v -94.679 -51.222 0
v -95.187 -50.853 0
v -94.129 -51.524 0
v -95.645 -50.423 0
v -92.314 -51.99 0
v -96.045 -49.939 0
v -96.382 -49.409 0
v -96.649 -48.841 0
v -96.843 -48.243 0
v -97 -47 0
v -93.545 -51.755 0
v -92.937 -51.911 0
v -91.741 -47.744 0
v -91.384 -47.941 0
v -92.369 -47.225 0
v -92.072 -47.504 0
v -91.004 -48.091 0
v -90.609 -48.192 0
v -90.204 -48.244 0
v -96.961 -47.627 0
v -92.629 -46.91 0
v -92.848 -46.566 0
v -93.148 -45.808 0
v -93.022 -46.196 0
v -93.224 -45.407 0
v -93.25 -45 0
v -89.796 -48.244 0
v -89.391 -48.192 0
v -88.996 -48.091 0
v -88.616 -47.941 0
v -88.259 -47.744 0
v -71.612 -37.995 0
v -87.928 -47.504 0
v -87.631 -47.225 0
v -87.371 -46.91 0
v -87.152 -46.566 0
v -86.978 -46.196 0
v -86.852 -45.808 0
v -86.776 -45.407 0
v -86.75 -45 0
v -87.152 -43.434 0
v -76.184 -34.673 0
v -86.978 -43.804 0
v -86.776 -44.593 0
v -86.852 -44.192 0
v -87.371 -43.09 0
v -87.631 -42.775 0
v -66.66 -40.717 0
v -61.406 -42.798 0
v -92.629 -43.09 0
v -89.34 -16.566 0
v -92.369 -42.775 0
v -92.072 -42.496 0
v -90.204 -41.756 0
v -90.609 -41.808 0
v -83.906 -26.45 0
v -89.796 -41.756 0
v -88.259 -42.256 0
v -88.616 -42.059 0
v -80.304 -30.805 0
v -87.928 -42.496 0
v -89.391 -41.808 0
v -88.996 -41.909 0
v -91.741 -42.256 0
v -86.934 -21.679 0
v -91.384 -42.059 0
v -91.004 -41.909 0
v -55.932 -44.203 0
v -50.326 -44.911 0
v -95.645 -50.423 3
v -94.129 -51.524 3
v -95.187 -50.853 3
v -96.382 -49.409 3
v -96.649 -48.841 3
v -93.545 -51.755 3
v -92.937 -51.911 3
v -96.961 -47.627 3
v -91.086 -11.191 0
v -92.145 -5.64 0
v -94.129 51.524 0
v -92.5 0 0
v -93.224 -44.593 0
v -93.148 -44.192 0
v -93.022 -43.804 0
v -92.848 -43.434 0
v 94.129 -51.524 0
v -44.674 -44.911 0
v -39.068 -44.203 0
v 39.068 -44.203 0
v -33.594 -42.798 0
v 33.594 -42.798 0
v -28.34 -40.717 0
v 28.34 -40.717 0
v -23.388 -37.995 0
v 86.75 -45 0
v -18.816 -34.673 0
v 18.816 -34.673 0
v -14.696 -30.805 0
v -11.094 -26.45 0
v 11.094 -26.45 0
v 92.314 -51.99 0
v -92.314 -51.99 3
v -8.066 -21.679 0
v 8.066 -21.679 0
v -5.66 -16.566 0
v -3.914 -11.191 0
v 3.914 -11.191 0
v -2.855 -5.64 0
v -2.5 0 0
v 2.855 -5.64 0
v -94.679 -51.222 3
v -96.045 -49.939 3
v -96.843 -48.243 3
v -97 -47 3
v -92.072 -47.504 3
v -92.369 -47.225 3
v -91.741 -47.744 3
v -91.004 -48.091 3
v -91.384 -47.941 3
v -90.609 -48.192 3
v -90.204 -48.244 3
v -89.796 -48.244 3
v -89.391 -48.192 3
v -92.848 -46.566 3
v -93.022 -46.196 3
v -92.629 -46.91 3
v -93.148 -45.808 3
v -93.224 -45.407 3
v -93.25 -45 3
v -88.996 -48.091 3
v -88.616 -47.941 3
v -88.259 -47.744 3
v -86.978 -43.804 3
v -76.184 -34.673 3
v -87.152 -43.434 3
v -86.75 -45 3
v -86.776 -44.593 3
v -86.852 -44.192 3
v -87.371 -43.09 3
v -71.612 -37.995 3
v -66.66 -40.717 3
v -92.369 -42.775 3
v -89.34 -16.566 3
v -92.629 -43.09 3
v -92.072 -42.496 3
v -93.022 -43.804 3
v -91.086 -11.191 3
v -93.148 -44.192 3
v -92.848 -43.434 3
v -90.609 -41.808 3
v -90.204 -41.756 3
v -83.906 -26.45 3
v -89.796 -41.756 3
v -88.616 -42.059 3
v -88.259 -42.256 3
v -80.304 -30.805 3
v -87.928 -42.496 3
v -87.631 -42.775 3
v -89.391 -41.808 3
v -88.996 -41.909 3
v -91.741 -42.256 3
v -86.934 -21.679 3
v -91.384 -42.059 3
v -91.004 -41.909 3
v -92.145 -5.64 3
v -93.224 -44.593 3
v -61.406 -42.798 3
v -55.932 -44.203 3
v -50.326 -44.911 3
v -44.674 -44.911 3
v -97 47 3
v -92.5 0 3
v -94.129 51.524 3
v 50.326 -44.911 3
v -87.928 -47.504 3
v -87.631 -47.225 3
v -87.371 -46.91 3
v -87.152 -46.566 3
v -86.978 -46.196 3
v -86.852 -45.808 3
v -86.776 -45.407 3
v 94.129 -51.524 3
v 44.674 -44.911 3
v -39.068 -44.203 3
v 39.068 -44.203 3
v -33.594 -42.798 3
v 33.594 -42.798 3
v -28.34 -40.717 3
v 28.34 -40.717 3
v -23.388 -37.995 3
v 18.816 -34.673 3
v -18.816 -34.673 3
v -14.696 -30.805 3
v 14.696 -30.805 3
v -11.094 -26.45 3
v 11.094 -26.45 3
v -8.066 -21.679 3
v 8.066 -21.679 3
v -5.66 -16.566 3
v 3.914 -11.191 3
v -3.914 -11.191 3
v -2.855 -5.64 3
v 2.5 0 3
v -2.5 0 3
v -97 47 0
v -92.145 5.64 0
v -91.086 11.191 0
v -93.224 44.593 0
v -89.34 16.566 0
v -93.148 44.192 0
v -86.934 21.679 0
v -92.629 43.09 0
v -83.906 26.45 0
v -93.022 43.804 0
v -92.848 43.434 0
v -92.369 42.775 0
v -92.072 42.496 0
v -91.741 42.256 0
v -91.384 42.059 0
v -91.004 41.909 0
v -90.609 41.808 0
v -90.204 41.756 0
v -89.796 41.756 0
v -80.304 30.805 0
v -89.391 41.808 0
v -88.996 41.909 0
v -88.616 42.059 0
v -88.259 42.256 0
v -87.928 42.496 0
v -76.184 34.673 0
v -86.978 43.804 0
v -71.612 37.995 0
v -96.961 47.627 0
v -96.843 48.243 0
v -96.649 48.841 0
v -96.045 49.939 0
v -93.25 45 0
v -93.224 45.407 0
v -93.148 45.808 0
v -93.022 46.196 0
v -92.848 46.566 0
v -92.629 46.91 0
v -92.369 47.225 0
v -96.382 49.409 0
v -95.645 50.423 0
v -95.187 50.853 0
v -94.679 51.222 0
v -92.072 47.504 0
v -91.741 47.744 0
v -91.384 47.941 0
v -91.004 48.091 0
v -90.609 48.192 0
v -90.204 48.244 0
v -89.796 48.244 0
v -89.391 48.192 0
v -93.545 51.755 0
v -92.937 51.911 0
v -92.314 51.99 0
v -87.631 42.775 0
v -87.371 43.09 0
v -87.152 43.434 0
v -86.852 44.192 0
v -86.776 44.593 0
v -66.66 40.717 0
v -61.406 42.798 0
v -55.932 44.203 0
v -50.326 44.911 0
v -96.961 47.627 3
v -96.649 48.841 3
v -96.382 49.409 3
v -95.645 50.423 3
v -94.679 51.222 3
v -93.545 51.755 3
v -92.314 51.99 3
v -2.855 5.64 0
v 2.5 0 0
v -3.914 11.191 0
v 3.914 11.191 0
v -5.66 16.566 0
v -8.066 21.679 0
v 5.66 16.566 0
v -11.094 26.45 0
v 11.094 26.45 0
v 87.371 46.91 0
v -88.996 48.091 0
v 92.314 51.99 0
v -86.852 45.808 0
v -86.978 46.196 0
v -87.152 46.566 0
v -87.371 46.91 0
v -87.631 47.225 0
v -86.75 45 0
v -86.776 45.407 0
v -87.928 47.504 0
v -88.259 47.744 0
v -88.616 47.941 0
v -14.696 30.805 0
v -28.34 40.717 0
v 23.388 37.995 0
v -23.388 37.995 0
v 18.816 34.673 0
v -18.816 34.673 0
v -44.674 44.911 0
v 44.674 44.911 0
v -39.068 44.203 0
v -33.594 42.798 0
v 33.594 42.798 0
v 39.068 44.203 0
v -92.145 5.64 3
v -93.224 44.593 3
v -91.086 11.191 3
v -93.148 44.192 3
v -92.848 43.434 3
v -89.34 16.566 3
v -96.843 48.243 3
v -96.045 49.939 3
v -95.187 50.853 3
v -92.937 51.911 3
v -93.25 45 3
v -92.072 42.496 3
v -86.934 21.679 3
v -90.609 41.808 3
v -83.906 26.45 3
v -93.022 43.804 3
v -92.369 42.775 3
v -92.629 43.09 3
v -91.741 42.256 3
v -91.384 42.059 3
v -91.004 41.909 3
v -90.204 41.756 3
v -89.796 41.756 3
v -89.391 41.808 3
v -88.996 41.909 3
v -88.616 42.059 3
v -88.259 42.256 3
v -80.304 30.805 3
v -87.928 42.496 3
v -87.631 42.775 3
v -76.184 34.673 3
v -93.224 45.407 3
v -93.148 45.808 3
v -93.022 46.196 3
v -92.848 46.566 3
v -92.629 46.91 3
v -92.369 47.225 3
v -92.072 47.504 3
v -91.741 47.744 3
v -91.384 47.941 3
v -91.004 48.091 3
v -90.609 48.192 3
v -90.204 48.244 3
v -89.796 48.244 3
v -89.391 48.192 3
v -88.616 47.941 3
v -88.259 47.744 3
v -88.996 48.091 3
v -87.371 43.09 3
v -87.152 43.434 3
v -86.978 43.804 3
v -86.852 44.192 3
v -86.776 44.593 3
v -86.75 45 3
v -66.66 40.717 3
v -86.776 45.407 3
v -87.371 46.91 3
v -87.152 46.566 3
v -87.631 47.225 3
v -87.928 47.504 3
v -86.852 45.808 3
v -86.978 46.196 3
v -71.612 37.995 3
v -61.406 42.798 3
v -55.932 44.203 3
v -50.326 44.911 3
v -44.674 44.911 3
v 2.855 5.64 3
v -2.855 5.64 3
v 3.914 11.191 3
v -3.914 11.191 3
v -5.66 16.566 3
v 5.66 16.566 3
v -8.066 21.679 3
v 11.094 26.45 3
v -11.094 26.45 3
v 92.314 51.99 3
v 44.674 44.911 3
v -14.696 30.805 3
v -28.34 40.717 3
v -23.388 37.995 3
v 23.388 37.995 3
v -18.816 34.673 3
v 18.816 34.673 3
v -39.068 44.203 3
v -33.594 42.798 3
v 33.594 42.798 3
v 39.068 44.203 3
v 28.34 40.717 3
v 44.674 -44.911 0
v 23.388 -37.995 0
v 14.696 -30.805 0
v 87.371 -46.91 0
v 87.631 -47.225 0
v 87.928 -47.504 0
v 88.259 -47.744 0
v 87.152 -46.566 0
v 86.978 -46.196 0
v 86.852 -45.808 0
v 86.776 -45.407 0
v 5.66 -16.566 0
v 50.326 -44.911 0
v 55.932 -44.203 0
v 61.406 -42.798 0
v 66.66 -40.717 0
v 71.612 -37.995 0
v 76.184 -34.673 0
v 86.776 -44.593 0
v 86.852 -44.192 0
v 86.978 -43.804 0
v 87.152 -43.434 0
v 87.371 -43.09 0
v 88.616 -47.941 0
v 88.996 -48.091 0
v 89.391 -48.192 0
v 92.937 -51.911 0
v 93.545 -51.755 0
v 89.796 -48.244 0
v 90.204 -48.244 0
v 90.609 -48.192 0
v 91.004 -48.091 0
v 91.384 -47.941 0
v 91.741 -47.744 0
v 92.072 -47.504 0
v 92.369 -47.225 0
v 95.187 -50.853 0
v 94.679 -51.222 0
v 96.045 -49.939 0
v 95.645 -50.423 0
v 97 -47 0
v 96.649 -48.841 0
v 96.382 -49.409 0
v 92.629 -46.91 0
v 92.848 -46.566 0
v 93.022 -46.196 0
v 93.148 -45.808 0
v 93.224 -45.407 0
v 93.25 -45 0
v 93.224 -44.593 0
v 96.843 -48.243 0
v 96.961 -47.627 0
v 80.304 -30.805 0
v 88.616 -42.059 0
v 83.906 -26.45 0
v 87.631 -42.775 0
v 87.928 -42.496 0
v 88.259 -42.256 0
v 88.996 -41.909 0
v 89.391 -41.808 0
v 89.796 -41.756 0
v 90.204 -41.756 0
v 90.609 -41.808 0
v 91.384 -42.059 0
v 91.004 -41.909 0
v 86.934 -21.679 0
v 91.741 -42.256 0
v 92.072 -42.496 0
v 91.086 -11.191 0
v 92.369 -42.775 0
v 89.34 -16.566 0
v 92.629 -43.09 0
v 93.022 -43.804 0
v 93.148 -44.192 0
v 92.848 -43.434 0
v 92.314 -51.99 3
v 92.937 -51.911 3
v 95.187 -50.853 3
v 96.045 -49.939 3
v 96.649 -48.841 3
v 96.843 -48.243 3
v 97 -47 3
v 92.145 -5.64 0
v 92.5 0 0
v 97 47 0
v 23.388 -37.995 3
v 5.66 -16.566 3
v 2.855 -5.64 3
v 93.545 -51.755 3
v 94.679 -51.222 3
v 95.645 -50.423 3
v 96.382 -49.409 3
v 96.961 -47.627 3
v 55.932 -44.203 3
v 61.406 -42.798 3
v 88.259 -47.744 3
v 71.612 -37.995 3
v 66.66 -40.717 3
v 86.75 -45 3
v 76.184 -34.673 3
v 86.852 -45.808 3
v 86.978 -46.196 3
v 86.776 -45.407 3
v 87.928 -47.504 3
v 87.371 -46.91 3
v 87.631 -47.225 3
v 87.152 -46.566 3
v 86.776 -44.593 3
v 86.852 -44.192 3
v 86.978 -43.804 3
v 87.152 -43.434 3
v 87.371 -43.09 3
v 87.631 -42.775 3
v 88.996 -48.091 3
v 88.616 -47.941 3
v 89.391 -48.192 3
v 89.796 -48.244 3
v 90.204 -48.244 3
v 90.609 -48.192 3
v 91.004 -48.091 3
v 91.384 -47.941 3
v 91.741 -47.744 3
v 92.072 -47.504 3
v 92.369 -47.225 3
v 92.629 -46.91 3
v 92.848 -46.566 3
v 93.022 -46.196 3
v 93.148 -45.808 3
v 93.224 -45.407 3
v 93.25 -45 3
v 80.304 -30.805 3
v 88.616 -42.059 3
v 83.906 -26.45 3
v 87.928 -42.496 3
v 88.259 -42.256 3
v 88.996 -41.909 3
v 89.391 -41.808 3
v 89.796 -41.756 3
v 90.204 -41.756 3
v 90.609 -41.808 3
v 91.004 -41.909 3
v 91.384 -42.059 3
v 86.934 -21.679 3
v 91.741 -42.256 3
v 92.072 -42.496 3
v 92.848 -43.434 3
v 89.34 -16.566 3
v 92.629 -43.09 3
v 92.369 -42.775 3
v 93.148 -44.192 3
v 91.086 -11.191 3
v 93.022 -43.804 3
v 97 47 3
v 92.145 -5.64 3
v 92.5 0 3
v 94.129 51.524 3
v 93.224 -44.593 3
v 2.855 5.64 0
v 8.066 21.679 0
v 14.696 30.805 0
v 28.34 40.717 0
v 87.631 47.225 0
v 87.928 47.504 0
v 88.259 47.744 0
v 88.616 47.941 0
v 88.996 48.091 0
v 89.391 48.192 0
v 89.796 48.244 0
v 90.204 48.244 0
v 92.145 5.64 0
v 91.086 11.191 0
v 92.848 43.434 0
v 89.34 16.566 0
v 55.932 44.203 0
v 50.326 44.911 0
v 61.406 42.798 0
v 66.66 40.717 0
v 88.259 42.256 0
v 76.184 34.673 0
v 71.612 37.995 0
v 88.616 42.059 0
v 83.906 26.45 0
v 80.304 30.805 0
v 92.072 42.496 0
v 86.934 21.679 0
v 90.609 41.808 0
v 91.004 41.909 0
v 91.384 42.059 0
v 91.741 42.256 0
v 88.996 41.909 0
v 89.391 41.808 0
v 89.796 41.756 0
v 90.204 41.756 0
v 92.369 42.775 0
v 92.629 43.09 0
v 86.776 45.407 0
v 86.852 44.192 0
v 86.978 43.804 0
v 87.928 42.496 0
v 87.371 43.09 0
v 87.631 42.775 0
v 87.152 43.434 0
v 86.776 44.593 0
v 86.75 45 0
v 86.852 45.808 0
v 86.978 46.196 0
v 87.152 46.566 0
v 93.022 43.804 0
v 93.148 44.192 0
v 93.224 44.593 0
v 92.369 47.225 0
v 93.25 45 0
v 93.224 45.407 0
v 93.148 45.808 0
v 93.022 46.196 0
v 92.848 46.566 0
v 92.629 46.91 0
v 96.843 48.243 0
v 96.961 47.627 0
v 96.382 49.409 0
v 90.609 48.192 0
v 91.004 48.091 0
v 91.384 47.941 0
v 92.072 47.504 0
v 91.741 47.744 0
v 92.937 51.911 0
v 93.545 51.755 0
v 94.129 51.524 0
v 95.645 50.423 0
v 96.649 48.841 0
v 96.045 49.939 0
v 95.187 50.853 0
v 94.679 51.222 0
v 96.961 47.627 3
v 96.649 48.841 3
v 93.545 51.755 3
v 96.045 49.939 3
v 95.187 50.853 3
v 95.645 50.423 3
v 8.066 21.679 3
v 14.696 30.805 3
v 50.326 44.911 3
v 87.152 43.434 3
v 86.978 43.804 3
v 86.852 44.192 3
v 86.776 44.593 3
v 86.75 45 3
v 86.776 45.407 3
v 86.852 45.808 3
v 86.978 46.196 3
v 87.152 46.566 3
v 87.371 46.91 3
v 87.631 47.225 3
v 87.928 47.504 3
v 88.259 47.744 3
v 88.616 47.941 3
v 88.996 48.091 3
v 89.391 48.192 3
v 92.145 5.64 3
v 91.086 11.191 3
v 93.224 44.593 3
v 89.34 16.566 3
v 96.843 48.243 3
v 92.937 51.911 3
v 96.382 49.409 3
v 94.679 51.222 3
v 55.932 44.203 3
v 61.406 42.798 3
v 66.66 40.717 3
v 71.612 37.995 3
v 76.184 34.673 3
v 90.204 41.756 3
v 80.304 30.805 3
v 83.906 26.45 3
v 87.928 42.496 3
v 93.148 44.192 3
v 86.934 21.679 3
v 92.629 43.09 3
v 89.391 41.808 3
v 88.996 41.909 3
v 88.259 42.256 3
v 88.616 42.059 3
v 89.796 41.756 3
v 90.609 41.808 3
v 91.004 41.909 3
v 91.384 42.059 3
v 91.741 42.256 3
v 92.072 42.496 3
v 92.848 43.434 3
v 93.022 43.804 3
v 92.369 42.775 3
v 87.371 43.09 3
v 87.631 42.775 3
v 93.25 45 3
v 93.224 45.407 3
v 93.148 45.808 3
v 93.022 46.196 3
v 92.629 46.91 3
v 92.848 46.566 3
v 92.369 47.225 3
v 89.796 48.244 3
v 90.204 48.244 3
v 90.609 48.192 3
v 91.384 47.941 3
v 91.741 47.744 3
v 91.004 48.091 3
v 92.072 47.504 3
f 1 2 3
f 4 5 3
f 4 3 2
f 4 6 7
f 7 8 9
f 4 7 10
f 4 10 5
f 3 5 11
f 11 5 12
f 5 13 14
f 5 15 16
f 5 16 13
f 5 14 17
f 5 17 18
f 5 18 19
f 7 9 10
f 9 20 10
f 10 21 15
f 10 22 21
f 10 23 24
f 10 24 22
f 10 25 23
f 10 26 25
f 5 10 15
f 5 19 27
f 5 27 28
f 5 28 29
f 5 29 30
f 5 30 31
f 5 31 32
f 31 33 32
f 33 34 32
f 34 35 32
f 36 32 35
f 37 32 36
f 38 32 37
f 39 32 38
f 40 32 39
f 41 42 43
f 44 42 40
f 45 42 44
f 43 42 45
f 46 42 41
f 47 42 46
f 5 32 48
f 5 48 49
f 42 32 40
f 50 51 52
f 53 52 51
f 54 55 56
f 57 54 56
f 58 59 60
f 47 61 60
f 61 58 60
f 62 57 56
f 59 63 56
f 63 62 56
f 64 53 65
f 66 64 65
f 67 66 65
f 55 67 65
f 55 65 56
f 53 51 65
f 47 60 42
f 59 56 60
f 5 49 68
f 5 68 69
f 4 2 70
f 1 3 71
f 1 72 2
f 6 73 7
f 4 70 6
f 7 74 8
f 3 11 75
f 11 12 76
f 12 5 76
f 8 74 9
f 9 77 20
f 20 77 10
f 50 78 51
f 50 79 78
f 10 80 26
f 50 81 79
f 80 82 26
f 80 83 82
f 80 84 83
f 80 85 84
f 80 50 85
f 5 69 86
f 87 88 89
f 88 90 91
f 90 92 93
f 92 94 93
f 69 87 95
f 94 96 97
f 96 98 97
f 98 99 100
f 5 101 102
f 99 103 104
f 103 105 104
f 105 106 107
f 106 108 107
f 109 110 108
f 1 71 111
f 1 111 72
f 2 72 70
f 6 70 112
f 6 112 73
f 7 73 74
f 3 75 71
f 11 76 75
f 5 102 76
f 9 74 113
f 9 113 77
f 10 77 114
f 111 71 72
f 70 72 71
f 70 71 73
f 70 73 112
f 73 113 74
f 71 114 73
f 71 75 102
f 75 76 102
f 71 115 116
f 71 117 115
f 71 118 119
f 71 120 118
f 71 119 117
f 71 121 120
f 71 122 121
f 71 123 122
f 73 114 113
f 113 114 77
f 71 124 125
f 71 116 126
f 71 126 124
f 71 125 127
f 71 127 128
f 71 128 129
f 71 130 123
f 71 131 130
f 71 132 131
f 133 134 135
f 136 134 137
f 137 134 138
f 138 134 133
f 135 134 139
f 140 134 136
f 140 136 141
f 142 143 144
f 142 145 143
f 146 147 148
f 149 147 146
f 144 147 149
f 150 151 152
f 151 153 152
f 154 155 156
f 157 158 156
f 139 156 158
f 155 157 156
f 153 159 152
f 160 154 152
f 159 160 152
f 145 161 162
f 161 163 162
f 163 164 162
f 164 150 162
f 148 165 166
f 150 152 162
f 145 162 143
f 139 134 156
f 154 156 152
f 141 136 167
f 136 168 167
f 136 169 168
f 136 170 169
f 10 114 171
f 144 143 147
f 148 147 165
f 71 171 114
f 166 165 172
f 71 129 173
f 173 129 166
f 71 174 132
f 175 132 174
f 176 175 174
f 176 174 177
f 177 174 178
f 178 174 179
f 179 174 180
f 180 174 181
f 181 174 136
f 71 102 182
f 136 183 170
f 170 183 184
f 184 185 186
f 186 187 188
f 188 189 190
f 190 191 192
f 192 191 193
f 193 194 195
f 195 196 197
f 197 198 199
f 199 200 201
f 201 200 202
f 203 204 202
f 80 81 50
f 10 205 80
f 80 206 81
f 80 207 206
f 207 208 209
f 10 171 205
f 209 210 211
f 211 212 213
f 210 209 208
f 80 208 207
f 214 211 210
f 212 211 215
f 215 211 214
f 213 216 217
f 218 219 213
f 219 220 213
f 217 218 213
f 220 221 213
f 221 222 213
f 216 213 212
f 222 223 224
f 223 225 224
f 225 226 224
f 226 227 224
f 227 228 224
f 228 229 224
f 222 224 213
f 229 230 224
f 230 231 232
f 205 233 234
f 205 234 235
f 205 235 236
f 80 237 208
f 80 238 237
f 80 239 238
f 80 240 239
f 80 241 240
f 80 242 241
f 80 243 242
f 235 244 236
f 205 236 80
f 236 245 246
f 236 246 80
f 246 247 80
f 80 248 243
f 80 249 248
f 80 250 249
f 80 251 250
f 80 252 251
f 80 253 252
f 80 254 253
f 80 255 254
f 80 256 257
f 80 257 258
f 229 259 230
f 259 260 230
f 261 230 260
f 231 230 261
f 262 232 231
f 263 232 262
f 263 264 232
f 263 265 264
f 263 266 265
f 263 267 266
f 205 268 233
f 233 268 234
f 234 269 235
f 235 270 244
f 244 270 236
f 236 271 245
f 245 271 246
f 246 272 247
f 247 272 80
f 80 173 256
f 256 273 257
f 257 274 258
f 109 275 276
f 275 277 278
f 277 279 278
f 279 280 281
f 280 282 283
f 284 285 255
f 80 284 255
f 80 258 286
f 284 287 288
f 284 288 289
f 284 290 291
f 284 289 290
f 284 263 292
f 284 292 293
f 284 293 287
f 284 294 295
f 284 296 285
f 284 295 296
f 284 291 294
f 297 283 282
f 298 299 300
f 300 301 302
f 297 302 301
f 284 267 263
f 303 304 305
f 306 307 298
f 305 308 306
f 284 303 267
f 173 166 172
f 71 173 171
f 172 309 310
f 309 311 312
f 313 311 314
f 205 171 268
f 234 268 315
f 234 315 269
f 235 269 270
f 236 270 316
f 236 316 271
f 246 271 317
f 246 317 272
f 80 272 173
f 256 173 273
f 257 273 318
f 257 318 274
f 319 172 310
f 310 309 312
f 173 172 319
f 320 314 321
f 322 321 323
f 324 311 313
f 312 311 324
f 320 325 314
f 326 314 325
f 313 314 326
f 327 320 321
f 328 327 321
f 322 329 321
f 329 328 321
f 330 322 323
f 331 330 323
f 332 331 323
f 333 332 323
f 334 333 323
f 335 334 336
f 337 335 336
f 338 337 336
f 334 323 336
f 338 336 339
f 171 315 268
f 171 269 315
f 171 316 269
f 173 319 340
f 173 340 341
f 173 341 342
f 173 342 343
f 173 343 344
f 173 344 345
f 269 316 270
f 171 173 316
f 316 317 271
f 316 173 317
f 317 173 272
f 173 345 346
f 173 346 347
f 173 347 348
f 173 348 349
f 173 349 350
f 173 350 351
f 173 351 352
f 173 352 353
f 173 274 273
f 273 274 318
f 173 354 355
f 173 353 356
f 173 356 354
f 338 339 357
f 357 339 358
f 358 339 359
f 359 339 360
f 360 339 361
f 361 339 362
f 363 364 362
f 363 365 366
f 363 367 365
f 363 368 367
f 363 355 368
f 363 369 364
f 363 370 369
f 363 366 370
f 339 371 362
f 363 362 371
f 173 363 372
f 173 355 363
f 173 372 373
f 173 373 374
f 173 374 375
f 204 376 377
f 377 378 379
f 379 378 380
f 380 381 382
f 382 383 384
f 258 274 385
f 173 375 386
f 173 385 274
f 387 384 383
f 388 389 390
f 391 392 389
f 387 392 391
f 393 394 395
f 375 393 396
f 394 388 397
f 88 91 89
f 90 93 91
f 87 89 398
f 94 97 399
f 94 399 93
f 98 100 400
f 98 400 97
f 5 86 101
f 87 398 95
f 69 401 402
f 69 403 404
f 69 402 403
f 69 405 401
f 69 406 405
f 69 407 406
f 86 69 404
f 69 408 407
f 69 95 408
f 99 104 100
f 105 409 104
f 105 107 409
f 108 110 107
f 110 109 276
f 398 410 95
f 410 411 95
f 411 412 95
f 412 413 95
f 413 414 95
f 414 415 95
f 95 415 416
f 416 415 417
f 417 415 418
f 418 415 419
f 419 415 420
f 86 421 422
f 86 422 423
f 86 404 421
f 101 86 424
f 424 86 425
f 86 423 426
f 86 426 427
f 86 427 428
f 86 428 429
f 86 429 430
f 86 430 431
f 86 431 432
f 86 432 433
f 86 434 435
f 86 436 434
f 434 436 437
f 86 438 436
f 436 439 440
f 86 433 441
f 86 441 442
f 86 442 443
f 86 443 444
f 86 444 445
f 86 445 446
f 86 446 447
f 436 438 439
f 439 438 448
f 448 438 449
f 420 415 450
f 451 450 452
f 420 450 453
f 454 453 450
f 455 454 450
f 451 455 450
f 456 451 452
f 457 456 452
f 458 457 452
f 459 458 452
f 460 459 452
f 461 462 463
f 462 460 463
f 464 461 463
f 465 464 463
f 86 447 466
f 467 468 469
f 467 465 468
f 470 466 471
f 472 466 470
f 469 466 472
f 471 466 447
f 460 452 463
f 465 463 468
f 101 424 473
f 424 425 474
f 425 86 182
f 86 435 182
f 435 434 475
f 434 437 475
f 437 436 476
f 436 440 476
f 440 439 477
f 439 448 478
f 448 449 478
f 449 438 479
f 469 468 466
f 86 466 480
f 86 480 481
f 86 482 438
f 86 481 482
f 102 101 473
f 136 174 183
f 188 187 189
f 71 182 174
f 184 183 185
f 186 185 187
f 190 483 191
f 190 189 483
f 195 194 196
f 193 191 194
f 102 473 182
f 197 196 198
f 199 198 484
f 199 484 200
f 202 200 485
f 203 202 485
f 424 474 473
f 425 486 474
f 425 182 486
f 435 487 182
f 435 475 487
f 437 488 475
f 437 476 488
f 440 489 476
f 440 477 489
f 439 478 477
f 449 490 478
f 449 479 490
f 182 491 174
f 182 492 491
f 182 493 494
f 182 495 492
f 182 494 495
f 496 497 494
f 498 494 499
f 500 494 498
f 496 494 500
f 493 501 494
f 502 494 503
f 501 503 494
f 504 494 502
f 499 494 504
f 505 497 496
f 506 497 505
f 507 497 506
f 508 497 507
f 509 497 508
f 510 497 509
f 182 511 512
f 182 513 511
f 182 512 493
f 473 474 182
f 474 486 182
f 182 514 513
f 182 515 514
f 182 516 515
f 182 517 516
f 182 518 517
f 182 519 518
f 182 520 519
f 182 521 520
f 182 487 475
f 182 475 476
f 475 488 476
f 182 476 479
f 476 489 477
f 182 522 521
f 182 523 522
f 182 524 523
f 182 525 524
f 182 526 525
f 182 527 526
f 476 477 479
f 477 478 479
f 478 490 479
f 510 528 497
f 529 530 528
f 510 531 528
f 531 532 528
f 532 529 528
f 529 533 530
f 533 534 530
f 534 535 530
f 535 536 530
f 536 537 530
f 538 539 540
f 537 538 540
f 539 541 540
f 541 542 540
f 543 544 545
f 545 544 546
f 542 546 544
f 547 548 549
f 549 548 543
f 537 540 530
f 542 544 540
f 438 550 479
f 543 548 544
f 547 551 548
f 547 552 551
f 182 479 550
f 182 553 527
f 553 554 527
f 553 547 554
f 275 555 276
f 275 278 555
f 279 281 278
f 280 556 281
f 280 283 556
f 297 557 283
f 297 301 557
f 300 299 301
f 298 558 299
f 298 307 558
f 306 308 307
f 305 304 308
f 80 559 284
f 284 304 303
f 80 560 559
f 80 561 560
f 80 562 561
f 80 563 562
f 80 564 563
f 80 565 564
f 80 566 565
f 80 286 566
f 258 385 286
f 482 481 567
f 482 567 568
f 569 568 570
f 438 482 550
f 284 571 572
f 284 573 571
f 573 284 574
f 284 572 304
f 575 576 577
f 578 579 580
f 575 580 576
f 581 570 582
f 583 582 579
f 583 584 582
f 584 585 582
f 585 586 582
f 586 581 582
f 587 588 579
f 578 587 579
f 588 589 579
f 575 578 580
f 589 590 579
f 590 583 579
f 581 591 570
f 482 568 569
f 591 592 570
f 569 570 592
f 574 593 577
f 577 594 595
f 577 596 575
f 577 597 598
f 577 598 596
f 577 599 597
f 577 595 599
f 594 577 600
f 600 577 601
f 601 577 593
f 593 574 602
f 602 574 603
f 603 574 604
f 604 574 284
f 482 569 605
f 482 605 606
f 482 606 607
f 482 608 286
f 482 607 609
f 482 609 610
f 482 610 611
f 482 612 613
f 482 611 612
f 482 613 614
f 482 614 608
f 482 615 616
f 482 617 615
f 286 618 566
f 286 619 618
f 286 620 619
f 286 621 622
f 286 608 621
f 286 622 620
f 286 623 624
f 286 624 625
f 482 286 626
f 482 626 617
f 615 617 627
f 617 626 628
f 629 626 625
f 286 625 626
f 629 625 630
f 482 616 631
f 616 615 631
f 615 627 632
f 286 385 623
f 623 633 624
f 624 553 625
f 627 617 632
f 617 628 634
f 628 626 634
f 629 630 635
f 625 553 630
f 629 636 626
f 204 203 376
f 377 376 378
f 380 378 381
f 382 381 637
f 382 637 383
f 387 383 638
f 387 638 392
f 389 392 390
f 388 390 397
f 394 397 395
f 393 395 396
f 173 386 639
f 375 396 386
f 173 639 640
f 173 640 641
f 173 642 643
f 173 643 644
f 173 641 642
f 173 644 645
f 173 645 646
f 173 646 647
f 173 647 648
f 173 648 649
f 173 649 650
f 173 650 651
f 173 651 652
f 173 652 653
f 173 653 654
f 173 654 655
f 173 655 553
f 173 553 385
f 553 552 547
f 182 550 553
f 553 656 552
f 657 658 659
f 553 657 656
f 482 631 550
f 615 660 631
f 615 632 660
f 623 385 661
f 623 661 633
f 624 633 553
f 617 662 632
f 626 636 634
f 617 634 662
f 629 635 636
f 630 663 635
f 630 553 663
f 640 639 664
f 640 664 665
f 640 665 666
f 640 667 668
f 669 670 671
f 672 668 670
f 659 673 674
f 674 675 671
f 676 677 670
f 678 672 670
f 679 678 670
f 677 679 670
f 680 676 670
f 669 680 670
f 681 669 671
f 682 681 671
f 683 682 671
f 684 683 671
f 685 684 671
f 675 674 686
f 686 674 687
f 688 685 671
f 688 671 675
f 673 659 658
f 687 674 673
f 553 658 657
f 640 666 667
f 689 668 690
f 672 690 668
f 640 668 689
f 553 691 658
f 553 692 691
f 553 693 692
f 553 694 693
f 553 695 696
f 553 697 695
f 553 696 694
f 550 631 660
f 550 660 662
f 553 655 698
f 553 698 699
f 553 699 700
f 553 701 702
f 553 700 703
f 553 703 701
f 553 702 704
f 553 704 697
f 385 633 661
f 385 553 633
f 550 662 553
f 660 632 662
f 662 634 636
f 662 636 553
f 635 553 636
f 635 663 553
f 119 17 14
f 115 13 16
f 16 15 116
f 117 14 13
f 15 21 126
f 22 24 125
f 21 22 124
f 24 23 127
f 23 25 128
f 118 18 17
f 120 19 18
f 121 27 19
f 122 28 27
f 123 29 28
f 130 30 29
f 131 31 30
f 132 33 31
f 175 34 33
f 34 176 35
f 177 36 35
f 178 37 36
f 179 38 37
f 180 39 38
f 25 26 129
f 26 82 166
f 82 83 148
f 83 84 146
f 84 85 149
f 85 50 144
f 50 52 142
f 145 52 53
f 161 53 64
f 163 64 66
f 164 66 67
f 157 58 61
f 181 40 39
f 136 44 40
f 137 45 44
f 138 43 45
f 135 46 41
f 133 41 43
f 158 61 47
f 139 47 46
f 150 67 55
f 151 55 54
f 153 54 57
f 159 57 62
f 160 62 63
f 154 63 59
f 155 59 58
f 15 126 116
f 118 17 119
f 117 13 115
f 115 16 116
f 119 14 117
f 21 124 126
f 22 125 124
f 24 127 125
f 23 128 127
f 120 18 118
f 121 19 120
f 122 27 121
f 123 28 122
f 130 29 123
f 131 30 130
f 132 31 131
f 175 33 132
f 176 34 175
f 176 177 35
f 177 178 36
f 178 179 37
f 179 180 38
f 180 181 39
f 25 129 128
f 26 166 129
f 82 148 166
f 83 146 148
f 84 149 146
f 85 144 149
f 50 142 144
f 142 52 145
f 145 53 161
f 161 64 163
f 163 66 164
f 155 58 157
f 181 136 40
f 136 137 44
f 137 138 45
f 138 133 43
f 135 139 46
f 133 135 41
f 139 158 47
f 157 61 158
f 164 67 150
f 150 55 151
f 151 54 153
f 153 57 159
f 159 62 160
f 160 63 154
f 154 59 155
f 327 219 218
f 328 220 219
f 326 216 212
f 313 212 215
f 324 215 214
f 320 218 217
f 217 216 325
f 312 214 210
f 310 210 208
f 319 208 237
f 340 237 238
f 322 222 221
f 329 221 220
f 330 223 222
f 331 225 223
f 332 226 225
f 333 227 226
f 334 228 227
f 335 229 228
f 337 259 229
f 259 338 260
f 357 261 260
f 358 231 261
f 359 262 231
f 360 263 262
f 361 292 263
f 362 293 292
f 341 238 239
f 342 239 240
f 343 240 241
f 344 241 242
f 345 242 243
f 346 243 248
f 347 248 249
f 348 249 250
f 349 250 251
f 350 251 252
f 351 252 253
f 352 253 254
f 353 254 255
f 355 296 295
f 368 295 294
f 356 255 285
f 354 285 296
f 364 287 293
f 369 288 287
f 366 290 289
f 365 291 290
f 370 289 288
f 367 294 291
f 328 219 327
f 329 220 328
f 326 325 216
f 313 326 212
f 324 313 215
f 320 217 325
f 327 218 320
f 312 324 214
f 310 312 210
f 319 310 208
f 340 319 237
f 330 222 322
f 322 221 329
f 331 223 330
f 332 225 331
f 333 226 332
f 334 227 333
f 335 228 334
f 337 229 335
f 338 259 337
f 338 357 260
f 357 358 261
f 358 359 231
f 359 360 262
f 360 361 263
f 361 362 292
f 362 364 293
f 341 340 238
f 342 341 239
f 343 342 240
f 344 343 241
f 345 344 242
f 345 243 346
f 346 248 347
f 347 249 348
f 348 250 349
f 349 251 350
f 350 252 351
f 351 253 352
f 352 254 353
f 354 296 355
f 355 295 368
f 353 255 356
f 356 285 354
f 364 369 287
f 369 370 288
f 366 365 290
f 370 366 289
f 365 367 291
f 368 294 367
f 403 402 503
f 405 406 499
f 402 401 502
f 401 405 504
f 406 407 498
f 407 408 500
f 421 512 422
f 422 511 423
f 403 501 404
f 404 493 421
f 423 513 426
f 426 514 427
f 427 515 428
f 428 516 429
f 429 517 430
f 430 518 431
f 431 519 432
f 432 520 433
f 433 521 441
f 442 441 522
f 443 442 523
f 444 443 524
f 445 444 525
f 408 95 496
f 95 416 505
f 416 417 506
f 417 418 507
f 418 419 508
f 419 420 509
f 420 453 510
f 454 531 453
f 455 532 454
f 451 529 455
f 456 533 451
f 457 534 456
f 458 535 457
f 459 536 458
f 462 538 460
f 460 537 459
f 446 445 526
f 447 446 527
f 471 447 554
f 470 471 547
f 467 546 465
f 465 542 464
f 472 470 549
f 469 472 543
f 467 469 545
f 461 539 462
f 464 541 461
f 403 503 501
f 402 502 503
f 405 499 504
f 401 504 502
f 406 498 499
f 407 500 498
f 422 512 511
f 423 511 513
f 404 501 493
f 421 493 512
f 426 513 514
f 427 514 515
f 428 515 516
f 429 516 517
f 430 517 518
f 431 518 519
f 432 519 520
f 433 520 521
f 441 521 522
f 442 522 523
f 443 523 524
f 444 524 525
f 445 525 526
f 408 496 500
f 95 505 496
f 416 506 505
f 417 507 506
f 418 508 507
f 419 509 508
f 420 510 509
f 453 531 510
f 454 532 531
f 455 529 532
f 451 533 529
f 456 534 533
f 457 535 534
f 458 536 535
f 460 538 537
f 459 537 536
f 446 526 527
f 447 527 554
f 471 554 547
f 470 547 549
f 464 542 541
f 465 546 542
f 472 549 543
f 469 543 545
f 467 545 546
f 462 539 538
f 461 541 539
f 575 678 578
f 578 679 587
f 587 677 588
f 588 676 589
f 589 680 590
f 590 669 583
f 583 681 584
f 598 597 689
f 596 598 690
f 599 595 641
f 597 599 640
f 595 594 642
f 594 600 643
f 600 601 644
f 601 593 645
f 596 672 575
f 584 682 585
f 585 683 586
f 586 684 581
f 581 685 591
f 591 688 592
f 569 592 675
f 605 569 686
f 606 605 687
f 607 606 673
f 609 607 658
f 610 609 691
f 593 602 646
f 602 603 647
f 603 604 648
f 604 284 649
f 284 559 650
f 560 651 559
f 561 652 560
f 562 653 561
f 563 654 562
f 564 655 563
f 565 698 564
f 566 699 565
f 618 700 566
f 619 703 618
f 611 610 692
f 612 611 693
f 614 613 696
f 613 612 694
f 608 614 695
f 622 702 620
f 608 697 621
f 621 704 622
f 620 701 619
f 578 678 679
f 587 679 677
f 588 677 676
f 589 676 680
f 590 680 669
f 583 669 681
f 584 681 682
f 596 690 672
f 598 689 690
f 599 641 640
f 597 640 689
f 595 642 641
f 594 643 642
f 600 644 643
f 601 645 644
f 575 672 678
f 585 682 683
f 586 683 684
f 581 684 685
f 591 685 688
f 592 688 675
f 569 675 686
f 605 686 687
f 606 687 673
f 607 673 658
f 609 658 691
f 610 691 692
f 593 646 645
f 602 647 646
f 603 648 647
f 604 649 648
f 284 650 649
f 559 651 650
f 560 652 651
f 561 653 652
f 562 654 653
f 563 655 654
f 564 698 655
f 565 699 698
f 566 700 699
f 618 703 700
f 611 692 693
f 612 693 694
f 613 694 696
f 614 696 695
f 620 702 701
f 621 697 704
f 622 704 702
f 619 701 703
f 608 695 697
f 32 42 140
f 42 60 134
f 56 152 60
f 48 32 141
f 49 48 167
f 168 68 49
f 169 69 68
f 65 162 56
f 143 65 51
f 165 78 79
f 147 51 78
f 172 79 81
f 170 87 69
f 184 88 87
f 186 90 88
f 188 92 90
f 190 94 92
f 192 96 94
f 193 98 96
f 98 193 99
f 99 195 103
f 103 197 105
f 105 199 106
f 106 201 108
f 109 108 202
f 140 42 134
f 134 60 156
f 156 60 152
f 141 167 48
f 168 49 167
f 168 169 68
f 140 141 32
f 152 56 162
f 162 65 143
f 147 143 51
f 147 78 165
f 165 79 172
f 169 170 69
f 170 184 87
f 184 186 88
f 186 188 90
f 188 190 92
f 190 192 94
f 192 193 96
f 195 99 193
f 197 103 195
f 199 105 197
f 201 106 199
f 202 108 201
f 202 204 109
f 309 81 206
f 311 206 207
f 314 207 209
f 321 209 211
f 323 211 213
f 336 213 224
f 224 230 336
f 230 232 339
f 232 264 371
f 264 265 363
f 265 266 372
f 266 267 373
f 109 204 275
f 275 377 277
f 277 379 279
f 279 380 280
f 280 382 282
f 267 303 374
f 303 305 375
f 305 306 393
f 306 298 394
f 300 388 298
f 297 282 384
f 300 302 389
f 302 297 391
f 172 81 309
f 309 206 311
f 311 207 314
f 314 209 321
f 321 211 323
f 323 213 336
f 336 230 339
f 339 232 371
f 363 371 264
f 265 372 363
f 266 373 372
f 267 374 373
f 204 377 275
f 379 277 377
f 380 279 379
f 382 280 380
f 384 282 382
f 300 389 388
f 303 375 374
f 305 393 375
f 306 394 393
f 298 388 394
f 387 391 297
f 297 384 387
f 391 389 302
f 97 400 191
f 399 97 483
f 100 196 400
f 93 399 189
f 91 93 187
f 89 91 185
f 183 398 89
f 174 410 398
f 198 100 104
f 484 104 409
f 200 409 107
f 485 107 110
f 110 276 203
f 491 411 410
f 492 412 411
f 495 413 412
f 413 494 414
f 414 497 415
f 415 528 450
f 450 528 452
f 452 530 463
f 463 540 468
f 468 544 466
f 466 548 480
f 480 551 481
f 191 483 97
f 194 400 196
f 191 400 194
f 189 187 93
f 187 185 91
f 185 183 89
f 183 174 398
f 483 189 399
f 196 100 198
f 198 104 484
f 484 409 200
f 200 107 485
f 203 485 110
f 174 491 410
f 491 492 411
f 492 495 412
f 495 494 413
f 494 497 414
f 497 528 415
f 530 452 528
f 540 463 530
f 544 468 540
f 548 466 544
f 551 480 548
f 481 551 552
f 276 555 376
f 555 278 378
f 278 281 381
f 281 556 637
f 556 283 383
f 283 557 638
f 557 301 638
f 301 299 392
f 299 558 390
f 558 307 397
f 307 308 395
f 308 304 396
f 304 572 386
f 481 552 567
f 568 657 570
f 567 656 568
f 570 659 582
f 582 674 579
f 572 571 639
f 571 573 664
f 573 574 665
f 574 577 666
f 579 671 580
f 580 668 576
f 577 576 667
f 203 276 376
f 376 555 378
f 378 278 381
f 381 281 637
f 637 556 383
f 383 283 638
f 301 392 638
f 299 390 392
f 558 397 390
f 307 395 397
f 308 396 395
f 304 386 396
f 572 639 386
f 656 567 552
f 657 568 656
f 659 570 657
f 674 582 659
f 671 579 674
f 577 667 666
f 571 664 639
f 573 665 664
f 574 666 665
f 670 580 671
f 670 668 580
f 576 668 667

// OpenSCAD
$fn = 50;

difference() {
	union() {
		hull() {
			translate(v = [-92.0, 47.0, 0]) {
				cylinder(h = 3, r = 5);
			}
			translate(v = [92.0, 47.0, 0]) {
				cylinder(h = 3, r = 5);
			}
			translate(v = [-92.0, -47.0, 0]) {
				cylinder(h = 3, r = 5);
			}
			translate(v = [92.0, -47.0, 0]) {
				cylinder(h = 3, r = 5);
			}
		}
	}
	union() {
		translate(v = [-90.0, -45.0, -100.0]) {
			cylinder(h = 200, r = 3.25);
		}
		translate(v = [-90.0, 45.0, -100.0]) {
			cylinder(h = 200, r = 3.25);
		}
		translate(v = [90.0, -45.0, -100.0]) {
			cylinder(h = 200, r = 3.25);
		}
		translate(v = [90.0, 45.0, -100.0]) {
			cylinder(h = 200, r = 3.25);
		}
		translate(v = [-90.0, -45.0, -100.0]) {
			cylinder(h = 200, r = 1.8);
		}
		translate(v = [-90.0, 45.0, -100.0]) {
			cylinder(h = 200, r = 1.8);
		}
		translate(v = [90.0, -45.0, -100.0]) {
			cylinder(h = 200, r = 1.8);
		}
		translate(v = [90.0, 45.0, -100.0]) {
			cylinder(h = 200, r = 1.8);
		}
		translate(v = [-47.5, 0, 0.0]) {
			cylinder(h = 3, r = 45.0);
		}
		translate(v = [47.5, 0, 0.0]) {
			cylinder(h = 3, r = 45.0);
		}
	}
}
